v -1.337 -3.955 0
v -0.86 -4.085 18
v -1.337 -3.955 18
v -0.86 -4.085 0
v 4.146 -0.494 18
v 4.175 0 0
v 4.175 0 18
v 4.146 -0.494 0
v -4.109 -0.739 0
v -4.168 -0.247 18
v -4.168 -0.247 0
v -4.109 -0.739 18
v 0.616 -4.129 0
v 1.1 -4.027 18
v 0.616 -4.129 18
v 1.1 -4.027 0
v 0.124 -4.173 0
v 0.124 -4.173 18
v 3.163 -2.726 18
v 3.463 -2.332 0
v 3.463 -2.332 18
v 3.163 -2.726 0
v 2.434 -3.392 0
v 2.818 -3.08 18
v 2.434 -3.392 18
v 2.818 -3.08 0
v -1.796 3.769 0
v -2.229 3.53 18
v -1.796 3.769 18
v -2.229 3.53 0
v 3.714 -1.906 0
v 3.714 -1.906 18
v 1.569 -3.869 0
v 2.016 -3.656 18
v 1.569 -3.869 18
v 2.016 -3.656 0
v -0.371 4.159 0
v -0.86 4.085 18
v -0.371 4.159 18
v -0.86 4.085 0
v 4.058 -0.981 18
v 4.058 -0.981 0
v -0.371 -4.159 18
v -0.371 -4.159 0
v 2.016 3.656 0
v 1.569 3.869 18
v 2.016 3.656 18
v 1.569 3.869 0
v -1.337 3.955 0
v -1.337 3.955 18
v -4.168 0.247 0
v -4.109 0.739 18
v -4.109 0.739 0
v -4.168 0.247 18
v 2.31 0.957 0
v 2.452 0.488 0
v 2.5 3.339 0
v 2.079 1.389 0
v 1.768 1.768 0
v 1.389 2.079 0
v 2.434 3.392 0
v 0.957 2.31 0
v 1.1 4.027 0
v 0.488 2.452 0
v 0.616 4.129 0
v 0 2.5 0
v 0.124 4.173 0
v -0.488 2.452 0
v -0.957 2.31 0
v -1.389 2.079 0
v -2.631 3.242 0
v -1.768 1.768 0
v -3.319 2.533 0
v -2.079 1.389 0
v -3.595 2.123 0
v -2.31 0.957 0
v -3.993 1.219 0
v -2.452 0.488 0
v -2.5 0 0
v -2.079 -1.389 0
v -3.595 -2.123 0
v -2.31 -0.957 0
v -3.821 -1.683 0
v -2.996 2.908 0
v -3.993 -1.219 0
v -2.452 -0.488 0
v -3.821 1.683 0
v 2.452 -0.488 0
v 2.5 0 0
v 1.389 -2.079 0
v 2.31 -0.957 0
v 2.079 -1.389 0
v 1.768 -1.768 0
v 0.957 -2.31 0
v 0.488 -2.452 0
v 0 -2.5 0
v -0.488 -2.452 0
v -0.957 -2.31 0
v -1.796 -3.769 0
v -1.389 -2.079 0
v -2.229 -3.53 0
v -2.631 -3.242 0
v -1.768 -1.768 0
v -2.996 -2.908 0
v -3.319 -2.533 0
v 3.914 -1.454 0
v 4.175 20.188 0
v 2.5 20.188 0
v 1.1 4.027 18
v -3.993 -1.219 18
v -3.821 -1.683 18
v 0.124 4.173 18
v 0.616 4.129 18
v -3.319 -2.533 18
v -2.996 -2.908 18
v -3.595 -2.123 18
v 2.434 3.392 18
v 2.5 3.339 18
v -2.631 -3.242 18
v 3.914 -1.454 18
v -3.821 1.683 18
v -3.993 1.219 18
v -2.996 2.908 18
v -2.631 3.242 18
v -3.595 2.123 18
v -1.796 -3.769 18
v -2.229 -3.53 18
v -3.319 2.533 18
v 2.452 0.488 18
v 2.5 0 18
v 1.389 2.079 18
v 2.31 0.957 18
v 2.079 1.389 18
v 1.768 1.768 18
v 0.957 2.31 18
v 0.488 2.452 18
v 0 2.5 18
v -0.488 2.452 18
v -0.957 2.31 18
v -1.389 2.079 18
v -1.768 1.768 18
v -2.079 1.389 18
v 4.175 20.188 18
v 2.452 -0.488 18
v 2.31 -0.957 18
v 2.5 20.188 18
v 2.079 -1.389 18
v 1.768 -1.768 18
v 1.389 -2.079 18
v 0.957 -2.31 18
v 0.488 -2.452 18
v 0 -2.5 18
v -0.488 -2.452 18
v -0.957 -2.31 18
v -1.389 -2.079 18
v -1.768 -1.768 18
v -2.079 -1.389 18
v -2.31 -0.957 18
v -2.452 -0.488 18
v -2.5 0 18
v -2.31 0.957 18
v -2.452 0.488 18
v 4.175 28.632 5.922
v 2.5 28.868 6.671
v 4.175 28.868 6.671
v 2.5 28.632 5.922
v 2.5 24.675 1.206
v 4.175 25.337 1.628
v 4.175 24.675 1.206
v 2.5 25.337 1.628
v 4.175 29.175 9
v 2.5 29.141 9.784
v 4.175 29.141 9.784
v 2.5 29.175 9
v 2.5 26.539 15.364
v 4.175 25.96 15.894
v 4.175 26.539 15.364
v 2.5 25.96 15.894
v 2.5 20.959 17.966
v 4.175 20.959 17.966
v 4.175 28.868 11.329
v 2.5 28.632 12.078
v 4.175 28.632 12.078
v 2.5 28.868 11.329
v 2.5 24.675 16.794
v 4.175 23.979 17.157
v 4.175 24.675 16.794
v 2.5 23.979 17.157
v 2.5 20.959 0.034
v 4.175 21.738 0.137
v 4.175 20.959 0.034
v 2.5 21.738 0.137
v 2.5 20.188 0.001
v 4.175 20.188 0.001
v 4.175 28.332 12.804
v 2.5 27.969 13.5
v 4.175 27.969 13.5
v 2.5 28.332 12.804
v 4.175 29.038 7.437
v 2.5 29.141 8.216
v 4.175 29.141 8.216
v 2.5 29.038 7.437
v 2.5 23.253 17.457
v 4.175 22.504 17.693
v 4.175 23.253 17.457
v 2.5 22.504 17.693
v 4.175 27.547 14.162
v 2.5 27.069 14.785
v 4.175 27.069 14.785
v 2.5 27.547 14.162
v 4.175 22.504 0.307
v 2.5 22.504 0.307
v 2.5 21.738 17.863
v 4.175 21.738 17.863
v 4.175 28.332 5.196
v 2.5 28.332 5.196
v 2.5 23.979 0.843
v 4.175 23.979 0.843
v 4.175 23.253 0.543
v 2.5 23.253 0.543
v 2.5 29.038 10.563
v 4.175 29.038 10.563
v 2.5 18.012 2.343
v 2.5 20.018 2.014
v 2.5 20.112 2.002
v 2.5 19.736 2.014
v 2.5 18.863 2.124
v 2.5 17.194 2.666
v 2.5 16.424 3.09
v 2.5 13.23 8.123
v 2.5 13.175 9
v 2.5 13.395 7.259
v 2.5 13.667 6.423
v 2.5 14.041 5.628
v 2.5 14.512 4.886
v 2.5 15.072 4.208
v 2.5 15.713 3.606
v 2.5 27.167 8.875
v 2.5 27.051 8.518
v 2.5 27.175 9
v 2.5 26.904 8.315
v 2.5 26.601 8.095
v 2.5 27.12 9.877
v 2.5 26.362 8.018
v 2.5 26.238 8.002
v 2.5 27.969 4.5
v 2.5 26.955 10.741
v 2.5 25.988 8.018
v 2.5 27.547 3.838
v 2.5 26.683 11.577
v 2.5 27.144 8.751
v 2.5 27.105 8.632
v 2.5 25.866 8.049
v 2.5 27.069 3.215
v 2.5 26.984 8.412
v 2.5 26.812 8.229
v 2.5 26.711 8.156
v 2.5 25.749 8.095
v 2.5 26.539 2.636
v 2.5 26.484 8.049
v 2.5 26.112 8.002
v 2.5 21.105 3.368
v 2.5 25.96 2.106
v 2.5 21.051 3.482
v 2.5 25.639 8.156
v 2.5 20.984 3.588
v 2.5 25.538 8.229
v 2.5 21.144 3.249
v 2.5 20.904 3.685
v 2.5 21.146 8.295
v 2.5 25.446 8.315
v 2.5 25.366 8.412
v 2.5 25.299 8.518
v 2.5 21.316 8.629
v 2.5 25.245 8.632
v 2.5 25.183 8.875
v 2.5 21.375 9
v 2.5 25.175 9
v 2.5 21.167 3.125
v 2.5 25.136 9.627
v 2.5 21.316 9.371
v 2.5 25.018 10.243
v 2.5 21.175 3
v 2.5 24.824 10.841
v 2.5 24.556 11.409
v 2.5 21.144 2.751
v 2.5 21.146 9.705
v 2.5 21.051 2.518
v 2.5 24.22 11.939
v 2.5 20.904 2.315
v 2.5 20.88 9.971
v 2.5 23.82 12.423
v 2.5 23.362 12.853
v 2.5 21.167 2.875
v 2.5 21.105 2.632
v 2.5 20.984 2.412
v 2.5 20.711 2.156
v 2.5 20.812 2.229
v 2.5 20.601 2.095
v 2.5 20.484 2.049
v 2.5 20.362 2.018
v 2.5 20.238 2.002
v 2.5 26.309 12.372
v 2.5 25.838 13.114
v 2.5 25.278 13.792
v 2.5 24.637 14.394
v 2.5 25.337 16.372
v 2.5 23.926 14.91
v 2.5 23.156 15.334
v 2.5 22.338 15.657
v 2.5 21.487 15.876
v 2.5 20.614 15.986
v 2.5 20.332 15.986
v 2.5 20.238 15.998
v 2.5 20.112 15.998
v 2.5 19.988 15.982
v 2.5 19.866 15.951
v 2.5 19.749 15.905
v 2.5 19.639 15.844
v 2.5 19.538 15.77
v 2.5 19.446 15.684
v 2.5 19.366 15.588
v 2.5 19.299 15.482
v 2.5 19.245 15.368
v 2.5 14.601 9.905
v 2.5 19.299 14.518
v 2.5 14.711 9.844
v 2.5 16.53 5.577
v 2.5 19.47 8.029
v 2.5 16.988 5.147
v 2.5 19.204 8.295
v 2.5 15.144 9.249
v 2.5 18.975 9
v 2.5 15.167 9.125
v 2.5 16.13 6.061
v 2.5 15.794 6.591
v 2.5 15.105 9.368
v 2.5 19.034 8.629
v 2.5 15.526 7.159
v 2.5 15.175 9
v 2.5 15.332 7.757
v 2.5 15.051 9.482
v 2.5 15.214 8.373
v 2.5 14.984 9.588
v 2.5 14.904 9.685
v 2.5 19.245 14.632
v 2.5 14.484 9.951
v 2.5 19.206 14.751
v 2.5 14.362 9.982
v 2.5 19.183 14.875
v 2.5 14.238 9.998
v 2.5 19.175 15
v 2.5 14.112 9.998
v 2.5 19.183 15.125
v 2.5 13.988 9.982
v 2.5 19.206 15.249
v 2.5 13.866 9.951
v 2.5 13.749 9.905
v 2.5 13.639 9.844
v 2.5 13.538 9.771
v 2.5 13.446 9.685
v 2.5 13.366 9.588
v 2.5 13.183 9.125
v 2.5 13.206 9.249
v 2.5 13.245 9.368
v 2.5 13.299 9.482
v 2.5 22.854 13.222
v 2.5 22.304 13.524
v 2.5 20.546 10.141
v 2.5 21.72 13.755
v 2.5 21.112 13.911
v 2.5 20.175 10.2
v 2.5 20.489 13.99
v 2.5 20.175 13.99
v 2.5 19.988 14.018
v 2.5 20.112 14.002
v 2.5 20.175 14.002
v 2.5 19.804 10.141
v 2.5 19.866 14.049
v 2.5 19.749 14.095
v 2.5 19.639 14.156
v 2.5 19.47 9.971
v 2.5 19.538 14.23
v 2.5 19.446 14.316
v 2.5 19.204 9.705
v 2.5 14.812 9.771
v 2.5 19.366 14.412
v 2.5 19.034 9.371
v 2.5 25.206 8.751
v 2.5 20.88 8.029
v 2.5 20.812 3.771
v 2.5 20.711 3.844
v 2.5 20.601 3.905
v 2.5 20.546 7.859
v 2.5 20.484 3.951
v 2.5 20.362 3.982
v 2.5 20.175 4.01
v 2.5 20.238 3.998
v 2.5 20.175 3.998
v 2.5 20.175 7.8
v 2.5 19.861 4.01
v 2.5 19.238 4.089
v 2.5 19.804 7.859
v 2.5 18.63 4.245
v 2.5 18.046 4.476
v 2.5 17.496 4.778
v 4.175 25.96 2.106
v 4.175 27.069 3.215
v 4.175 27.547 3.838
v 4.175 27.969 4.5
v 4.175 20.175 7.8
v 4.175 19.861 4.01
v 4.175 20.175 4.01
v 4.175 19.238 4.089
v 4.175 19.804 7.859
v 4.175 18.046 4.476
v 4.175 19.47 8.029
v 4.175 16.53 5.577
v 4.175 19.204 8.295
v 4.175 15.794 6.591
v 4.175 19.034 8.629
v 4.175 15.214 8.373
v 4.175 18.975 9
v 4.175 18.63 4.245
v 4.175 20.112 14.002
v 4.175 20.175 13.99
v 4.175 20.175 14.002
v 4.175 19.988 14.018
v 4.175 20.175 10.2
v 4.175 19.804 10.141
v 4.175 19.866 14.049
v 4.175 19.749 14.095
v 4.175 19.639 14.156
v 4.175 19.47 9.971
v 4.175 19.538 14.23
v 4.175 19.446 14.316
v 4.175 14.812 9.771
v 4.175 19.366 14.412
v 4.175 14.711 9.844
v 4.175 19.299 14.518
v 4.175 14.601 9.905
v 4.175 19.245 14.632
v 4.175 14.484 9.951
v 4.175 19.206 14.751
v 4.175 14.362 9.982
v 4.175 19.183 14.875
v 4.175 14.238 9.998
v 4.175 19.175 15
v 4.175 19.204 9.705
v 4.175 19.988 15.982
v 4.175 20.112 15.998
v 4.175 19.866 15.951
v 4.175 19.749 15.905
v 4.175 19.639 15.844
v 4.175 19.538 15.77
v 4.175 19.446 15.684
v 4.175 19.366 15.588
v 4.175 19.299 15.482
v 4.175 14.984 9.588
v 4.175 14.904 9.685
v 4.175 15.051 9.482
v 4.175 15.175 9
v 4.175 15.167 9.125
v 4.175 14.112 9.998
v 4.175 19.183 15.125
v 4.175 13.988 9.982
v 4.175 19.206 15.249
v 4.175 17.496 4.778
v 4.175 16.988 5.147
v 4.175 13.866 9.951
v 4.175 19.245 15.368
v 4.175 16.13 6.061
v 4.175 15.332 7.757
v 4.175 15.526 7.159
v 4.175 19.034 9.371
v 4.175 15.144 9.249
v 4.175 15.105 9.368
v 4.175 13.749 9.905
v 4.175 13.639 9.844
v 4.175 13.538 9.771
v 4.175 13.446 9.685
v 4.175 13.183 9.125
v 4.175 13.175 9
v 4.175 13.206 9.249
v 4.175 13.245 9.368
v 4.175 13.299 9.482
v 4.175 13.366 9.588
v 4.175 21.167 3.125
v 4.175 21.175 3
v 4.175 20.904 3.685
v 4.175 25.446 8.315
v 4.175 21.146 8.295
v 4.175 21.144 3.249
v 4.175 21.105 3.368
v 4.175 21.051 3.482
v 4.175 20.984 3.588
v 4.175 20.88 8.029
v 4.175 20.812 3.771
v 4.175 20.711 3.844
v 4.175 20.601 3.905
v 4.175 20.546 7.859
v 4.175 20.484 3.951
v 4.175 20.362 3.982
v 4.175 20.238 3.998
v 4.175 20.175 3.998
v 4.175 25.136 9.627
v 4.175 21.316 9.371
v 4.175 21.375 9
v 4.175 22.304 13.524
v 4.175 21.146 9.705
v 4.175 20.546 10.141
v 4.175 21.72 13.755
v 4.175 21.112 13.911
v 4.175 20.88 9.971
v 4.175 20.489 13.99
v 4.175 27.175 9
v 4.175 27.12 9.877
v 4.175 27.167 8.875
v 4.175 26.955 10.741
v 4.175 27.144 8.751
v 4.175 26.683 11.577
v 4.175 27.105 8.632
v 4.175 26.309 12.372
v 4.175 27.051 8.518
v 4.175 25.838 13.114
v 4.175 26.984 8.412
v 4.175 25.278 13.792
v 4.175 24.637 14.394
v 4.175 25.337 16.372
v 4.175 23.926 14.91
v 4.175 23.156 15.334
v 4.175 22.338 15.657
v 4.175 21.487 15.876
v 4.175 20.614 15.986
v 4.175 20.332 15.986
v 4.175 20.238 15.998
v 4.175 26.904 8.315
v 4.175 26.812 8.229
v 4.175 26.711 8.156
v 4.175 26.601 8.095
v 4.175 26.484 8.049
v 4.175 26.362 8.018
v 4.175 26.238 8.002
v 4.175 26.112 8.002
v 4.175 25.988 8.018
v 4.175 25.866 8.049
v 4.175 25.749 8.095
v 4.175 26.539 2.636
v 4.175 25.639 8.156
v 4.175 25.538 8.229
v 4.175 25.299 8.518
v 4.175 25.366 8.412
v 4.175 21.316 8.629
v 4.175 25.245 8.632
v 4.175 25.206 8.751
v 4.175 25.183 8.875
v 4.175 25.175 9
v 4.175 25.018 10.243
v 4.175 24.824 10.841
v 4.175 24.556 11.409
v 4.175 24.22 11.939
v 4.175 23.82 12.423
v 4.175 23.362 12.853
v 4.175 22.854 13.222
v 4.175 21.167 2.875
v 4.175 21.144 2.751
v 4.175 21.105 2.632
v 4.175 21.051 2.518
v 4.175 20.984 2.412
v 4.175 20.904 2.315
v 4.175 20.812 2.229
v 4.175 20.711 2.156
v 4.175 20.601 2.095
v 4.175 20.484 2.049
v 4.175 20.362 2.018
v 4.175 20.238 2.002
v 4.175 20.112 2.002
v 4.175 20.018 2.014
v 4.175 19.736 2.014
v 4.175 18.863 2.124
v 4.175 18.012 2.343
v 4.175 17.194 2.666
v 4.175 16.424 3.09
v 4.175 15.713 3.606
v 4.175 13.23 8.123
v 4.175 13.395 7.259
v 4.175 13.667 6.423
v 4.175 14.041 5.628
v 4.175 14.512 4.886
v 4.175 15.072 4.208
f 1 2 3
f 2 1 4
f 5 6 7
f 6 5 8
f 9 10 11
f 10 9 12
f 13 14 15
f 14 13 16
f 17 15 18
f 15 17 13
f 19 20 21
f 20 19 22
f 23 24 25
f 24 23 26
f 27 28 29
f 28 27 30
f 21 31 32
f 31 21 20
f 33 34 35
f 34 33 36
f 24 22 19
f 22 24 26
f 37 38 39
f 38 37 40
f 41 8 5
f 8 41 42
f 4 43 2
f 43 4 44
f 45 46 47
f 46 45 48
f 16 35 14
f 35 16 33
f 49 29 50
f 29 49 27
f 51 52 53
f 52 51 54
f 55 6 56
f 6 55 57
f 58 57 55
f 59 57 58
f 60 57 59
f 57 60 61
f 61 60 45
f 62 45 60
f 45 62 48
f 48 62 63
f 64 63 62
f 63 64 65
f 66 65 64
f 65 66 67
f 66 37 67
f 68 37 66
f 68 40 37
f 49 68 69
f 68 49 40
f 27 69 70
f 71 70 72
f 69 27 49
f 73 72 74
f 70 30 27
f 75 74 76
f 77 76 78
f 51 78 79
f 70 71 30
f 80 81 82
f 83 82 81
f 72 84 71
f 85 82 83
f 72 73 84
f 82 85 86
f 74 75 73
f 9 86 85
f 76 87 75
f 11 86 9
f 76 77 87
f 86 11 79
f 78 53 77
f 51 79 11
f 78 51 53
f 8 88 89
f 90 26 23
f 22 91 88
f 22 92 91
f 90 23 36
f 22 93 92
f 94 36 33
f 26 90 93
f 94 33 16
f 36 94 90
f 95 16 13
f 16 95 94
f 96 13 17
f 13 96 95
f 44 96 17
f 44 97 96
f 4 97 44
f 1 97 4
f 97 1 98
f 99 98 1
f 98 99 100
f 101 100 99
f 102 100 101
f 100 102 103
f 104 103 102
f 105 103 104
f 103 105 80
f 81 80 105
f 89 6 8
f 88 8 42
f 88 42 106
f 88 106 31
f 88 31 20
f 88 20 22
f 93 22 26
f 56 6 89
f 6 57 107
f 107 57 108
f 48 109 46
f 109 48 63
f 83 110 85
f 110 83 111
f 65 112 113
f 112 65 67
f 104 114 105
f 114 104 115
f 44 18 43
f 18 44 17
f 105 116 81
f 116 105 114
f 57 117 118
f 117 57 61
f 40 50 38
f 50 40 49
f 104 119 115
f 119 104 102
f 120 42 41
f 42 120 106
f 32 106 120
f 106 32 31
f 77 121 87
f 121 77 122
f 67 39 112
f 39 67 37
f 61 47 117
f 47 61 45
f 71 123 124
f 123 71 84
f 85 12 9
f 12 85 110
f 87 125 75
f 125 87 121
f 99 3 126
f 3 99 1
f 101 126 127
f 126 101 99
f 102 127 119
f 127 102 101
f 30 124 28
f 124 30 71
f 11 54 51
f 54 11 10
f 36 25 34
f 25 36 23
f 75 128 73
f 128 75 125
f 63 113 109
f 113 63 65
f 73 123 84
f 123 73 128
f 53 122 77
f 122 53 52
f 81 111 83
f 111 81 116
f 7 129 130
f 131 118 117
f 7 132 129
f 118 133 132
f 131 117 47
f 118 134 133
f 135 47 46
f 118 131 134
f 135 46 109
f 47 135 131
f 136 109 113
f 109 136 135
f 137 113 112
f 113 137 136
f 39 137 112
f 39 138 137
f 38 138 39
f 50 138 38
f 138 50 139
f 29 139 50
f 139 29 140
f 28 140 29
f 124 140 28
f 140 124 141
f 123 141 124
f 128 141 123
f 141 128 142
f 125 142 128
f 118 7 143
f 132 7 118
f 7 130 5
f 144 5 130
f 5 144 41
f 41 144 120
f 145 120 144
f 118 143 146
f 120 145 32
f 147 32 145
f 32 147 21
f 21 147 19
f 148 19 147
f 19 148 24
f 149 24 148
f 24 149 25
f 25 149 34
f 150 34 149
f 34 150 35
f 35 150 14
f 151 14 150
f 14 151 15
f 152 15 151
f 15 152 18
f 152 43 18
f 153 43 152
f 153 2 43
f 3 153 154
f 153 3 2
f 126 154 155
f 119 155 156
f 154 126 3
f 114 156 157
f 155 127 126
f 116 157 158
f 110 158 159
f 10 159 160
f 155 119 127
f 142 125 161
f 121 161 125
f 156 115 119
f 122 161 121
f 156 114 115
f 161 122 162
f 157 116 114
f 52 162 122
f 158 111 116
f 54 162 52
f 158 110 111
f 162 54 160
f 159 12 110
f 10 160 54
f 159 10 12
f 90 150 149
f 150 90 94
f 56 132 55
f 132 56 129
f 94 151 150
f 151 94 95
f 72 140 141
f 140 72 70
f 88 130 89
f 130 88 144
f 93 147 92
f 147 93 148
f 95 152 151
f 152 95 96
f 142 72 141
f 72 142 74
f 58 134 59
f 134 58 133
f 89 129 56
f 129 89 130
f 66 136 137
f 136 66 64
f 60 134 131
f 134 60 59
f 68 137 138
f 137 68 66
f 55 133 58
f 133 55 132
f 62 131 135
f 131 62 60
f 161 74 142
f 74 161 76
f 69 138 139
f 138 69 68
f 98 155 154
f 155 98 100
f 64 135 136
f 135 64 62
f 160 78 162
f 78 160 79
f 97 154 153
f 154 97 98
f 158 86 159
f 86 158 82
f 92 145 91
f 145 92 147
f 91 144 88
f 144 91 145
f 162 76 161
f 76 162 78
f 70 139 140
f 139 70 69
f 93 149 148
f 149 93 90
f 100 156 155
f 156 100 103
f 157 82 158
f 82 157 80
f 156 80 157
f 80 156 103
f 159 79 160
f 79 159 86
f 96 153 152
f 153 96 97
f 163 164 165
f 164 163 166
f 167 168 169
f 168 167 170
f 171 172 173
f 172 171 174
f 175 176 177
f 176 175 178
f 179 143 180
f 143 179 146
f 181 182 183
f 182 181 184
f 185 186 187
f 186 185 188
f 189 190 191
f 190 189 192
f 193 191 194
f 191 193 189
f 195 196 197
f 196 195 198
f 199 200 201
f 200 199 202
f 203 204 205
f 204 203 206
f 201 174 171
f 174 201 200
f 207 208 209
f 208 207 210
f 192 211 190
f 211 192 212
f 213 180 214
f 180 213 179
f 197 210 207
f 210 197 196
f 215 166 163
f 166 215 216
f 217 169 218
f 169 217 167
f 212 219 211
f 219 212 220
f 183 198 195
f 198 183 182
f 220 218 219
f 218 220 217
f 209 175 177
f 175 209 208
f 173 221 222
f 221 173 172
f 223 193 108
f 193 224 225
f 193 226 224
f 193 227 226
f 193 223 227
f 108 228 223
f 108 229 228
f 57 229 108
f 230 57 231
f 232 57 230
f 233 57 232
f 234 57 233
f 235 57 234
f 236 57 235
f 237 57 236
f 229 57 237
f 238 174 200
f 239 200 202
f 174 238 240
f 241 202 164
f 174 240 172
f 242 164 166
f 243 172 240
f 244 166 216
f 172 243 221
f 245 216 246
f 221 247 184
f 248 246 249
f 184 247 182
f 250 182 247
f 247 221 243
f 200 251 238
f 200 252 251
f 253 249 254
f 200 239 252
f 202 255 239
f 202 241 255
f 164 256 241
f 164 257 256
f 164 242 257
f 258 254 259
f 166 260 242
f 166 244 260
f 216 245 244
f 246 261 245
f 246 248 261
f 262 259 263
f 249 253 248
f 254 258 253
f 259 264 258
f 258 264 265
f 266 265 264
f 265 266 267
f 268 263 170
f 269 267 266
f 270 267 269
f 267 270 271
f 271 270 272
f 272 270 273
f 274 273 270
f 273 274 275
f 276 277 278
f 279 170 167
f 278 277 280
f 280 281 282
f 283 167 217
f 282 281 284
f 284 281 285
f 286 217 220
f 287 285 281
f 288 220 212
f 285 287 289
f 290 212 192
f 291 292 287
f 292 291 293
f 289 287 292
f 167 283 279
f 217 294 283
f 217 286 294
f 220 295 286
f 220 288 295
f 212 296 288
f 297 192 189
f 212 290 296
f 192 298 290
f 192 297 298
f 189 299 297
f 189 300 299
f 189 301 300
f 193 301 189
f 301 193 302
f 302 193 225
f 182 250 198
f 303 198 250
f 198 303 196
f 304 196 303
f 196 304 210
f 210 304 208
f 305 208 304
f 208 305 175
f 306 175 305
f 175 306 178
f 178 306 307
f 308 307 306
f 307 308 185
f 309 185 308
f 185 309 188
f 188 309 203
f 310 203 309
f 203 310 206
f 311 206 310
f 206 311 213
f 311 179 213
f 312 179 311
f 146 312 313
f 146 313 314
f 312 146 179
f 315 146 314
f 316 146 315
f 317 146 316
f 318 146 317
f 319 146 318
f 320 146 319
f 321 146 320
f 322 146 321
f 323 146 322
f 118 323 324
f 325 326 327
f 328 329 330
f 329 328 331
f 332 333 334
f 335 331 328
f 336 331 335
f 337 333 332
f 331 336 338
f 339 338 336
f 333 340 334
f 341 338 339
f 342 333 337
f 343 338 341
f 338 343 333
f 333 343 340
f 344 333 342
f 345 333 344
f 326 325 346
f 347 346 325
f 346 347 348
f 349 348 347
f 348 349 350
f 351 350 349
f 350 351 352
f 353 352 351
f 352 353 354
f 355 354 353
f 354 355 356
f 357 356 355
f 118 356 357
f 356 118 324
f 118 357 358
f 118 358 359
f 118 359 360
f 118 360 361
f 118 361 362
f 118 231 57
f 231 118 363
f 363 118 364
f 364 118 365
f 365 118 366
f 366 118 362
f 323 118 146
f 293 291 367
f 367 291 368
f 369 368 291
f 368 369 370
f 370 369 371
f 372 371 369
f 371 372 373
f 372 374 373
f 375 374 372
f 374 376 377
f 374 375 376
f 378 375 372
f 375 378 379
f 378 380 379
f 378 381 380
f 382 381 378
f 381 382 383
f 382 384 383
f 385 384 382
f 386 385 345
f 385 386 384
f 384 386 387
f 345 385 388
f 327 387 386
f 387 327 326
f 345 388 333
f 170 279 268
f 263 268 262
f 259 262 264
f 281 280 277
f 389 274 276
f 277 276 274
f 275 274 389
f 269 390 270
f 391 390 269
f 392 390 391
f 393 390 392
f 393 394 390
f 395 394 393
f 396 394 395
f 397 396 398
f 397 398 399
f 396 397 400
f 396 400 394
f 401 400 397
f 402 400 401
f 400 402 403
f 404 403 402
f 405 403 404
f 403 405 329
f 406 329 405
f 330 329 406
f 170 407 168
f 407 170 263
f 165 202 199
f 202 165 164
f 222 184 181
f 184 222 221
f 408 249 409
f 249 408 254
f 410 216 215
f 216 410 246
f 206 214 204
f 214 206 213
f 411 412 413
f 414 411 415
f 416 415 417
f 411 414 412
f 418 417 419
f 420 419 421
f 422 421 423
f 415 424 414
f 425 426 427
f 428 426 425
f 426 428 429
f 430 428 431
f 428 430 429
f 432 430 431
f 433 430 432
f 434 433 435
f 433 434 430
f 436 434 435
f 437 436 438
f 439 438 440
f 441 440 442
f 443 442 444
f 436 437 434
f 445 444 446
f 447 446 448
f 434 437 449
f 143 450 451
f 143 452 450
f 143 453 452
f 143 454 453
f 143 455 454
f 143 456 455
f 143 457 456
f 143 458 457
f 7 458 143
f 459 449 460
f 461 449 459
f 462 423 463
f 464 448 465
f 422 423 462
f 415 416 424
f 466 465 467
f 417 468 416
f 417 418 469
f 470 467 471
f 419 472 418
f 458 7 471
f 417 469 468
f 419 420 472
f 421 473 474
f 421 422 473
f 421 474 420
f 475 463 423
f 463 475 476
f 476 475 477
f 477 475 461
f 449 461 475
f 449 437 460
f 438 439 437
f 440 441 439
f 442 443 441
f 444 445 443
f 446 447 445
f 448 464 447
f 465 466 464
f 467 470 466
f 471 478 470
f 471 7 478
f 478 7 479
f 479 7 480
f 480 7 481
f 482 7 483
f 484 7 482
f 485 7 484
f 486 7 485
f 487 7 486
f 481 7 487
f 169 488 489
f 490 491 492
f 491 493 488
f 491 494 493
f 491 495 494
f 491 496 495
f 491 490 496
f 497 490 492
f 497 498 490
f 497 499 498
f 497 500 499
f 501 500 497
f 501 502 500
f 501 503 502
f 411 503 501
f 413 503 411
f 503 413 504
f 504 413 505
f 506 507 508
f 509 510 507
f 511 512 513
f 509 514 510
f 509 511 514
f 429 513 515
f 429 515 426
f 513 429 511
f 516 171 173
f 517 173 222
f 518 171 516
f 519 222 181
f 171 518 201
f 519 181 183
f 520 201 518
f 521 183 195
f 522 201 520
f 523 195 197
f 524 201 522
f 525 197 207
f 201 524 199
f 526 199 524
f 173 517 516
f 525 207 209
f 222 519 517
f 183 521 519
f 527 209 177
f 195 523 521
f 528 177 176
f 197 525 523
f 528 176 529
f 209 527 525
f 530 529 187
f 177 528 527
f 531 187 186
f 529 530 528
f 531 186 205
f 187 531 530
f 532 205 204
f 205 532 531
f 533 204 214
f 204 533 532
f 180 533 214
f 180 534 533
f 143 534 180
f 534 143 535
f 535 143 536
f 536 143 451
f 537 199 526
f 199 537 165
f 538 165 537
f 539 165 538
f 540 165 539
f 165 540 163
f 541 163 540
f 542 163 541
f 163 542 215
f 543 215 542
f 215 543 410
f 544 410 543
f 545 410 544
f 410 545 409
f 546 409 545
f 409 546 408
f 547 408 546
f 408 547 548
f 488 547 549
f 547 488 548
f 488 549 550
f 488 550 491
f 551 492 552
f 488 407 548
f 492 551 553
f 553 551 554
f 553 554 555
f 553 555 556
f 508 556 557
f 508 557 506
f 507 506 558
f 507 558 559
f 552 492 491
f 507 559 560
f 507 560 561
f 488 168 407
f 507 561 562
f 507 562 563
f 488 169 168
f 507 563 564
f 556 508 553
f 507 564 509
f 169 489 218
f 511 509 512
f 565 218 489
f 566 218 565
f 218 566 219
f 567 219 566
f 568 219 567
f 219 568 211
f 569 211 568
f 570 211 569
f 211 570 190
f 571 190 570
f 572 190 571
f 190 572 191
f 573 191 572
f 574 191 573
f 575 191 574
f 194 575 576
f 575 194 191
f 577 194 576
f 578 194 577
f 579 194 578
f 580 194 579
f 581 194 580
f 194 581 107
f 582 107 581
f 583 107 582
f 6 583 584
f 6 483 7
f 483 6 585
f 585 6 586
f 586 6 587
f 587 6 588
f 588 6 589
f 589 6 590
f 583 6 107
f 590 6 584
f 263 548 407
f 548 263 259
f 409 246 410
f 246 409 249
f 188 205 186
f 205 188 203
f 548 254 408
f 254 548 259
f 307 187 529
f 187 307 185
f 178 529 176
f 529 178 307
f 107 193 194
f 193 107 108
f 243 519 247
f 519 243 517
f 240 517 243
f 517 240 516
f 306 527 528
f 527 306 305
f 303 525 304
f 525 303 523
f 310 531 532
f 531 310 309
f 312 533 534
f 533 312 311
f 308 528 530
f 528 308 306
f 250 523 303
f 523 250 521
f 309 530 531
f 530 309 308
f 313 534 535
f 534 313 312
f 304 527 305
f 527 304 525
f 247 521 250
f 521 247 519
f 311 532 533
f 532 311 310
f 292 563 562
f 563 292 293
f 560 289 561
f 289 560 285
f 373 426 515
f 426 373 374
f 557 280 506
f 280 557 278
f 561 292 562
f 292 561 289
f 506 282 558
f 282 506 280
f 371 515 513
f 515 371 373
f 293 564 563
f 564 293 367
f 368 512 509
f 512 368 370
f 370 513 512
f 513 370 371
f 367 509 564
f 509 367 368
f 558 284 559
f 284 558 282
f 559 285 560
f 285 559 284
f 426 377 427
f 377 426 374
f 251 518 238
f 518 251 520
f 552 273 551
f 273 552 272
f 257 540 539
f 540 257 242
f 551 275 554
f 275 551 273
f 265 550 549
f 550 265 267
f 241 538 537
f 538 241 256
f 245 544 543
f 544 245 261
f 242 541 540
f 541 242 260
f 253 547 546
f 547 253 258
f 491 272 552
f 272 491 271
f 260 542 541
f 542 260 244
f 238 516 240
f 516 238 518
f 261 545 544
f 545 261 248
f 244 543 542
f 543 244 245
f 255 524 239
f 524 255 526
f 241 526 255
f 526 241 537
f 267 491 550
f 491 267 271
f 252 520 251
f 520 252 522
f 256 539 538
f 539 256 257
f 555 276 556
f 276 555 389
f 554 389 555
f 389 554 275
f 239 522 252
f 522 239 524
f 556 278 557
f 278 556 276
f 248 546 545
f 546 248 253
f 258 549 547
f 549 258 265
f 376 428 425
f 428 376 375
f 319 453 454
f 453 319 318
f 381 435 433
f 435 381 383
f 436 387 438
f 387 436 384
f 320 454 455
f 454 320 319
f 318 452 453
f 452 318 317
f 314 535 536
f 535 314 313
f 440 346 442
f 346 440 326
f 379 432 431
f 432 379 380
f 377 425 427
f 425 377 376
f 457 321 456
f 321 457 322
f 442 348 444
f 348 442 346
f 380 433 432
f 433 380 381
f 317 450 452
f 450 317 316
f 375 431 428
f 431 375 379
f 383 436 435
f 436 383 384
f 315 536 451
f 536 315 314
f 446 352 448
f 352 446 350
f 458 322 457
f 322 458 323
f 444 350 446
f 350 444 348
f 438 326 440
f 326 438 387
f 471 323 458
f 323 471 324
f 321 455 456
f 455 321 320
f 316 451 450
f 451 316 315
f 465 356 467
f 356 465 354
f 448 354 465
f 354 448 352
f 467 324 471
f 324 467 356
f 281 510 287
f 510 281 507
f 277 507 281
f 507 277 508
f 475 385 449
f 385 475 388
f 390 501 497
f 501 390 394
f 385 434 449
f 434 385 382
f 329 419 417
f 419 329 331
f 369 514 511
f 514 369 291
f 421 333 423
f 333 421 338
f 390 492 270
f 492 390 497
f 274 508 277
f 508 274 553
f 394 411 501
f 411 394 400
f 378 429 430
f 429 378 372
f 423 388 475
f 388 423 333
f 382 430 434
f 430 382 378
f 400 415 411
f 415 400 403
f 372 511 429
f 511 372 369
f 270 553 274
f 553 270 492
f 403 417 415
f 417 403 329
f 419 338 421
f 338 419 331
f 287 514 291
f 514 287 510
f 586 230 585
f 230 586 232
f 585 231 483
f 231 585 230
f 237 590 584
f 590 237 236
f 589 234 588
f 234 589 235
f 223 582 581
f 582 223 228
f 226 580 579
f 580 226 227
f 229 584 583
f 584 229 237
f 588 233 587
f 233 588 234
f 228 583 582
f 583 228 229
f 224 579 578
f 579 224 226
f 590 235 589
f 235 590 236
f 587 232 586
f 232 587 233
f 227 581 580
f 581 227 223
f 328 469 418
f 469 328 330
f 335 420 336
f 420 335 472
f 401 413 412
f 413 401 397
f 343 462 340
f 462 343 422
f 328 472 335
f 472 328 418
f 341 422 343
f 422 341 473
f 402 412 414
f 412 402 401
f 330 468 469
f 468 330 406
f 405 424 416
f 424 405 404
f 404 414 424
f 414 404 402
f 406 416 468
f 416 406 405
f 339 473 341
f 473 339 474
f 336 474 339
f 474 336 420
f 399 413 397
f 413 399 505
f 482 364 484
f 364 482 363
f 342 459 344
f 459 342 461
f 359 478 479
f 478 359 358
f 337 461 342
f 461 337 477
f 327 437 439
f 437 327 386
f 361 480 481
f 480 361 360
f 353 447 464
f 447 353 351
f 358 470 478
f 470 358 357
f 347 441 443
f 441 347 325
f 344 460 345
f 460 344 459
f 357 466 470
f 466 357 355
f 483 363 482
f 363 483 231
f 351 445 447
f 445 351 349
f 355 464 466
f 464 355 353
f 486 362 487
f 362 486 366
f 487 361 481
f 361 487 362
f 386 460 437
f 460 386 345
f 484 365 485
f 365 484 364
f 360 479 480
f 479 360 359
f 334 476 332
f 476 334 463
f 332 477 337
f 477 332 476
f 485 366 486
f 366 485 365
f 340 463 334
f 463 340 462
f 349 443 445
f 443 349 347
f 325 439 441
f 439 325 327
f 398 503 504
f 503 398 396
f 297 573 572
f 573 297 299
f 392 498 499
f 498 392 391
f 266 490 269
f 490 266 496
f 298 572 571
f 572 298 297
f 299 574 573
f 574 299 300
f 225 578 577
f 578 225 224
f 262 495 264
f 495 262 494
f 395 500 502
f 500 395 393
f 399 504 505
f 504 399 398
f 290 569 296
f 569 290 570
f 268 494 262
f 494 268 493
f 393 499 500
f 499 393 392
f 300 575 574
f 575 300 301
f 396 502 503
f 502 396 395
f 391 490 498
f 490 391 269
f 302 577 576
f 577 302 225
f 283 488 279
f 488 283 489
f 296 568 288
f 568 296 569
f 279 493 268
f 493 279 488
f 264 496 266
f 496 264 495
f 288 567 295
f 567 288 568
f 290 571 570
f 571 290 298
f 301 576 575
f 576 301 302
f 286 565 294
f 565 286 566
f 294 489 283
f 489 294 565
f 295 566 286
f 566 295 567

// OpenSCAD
// file: fpv_camera_mount.scad
module fpv_camera_mount_arc(depth, screwwidth, radius = 6)
{
	res = $preview ? 10 : 50;
	intersection() {
		outrad = screwwidth / 2 + radius;
		inrad = radius - screwwidth / 2;
		difference() {
			cylinder(depth, r = outrad, $fn = res);
			cylinder(depth, r = inrad, $fn = res);
		}
		arcextend = screwwidth / 2;
		cube([outrad + arcextend, outrad + arcextend, depth]);
	}
	translate([radius, 0, 0]) cylinder(depth, r = screwwidth / 2, $fn = res);
	translate([0, radius, 0]) cylinder(depth, r = screwwidth / 2, $fn = res);
}

module fpv_camera_mount_hole(depth, screwwidth = 2)
{
	res = $preview ? 10 : 20;
	cylinder(depth, r = screwwidth * 1.2 / 2, $fn = res);
}

module fpv_camera_mount(depth, screwwidth = 2)
{
	fpv_camera_mount_full_6mm(depth, screwwidth);
	rotate([0, 0, 160]) fpv_camera_mount_half_9mm(depth, screwwidth);
}

module fpv_camera_mount_full(depth, screwwidth = 2)
{
	fpv_camera_mount_full_6mm(depth, screwwidth);
	fpv_camera_mount_full_9mm(depth, screwwidth);
}

module fpv_camera_mount_half_6mm(depth, screwwidth = 2)
{
	fpv_camera_mount_hole(depth, screwwidth);
	fpv_camera_mount_arc(depth, screwwidth, 6);
}

module fpv_camera_mount_full_6mm(depth, screwwidth = 2)
{
	rotate([0, 0, 90]) fpv_camera_mount_half_6mm(depth, screwwidth);
	rotate([0, 0, 270]) fpv_camera_mount_half_6mm(depth, screwwidth);
}

module fpv_camera_mount_half_9mm(depth, screwwidth = 2)
{
	fpv_camera_mount_hole(depth, screwwidth);
	fpv_camera_mount_arc(depth, screwwidth, 9);
}

module fpv_camera_mount_full_9mm(depth, screwwidth = 2, angle_offset = -20)
{
	rotate([0, 0, angle_offset]) fpv_camera_mount_half_9mm(depth, screwwidth);
	rotate([0, 0, 180 + angle_offset]) fpv_camera_mount_half_9mm(depth, screwwidth);
}
// main file
use <fpv_camera_mount.scad>

standoff_width = 5;

height = 18;
offset = 16;

anti_warp = .15;
filament_width = 1.75;

function anti_warp_widen(v) = v + (filament_width * anti_warp) * 2;
function anti_warp_shrink(v) = v - (filament_width * anti_warp) * 2;

wall_thickness = anti_warp_widen(1.15);

// END OF CONFIGURATION


$fs = $preview ? 1 : 0.5;
$fa = $preview ? 10 : 5;

module standoff() {
	difference() {
		cylinder(h = height, d = standoff_width + 2 * wall_thickness);
		cylinder(h = height, d = standoff_width);
	}
}

module main() {
	standoff();
	translate([standoff_width / 2, 0]) {
		difference() {
			union() {
				translate([0, offset + wall_thickness + standoff_width / 2, height / 2]) rotate([0, 90]) {
					difference() {
						cylinder(h = wall_thickness, d = height);
					}
				}
				cube([wall_thickness, offset + wall_thickness * standoff_width / 2, height]);
			}
			translate([0, offset + wall_thickness + standoff_width / 2, height / 2]) rotate([0, 90]) {
				fpv_camera_mount_full_6mm(wall_thickness);
			}
		}
	}
}

main();
